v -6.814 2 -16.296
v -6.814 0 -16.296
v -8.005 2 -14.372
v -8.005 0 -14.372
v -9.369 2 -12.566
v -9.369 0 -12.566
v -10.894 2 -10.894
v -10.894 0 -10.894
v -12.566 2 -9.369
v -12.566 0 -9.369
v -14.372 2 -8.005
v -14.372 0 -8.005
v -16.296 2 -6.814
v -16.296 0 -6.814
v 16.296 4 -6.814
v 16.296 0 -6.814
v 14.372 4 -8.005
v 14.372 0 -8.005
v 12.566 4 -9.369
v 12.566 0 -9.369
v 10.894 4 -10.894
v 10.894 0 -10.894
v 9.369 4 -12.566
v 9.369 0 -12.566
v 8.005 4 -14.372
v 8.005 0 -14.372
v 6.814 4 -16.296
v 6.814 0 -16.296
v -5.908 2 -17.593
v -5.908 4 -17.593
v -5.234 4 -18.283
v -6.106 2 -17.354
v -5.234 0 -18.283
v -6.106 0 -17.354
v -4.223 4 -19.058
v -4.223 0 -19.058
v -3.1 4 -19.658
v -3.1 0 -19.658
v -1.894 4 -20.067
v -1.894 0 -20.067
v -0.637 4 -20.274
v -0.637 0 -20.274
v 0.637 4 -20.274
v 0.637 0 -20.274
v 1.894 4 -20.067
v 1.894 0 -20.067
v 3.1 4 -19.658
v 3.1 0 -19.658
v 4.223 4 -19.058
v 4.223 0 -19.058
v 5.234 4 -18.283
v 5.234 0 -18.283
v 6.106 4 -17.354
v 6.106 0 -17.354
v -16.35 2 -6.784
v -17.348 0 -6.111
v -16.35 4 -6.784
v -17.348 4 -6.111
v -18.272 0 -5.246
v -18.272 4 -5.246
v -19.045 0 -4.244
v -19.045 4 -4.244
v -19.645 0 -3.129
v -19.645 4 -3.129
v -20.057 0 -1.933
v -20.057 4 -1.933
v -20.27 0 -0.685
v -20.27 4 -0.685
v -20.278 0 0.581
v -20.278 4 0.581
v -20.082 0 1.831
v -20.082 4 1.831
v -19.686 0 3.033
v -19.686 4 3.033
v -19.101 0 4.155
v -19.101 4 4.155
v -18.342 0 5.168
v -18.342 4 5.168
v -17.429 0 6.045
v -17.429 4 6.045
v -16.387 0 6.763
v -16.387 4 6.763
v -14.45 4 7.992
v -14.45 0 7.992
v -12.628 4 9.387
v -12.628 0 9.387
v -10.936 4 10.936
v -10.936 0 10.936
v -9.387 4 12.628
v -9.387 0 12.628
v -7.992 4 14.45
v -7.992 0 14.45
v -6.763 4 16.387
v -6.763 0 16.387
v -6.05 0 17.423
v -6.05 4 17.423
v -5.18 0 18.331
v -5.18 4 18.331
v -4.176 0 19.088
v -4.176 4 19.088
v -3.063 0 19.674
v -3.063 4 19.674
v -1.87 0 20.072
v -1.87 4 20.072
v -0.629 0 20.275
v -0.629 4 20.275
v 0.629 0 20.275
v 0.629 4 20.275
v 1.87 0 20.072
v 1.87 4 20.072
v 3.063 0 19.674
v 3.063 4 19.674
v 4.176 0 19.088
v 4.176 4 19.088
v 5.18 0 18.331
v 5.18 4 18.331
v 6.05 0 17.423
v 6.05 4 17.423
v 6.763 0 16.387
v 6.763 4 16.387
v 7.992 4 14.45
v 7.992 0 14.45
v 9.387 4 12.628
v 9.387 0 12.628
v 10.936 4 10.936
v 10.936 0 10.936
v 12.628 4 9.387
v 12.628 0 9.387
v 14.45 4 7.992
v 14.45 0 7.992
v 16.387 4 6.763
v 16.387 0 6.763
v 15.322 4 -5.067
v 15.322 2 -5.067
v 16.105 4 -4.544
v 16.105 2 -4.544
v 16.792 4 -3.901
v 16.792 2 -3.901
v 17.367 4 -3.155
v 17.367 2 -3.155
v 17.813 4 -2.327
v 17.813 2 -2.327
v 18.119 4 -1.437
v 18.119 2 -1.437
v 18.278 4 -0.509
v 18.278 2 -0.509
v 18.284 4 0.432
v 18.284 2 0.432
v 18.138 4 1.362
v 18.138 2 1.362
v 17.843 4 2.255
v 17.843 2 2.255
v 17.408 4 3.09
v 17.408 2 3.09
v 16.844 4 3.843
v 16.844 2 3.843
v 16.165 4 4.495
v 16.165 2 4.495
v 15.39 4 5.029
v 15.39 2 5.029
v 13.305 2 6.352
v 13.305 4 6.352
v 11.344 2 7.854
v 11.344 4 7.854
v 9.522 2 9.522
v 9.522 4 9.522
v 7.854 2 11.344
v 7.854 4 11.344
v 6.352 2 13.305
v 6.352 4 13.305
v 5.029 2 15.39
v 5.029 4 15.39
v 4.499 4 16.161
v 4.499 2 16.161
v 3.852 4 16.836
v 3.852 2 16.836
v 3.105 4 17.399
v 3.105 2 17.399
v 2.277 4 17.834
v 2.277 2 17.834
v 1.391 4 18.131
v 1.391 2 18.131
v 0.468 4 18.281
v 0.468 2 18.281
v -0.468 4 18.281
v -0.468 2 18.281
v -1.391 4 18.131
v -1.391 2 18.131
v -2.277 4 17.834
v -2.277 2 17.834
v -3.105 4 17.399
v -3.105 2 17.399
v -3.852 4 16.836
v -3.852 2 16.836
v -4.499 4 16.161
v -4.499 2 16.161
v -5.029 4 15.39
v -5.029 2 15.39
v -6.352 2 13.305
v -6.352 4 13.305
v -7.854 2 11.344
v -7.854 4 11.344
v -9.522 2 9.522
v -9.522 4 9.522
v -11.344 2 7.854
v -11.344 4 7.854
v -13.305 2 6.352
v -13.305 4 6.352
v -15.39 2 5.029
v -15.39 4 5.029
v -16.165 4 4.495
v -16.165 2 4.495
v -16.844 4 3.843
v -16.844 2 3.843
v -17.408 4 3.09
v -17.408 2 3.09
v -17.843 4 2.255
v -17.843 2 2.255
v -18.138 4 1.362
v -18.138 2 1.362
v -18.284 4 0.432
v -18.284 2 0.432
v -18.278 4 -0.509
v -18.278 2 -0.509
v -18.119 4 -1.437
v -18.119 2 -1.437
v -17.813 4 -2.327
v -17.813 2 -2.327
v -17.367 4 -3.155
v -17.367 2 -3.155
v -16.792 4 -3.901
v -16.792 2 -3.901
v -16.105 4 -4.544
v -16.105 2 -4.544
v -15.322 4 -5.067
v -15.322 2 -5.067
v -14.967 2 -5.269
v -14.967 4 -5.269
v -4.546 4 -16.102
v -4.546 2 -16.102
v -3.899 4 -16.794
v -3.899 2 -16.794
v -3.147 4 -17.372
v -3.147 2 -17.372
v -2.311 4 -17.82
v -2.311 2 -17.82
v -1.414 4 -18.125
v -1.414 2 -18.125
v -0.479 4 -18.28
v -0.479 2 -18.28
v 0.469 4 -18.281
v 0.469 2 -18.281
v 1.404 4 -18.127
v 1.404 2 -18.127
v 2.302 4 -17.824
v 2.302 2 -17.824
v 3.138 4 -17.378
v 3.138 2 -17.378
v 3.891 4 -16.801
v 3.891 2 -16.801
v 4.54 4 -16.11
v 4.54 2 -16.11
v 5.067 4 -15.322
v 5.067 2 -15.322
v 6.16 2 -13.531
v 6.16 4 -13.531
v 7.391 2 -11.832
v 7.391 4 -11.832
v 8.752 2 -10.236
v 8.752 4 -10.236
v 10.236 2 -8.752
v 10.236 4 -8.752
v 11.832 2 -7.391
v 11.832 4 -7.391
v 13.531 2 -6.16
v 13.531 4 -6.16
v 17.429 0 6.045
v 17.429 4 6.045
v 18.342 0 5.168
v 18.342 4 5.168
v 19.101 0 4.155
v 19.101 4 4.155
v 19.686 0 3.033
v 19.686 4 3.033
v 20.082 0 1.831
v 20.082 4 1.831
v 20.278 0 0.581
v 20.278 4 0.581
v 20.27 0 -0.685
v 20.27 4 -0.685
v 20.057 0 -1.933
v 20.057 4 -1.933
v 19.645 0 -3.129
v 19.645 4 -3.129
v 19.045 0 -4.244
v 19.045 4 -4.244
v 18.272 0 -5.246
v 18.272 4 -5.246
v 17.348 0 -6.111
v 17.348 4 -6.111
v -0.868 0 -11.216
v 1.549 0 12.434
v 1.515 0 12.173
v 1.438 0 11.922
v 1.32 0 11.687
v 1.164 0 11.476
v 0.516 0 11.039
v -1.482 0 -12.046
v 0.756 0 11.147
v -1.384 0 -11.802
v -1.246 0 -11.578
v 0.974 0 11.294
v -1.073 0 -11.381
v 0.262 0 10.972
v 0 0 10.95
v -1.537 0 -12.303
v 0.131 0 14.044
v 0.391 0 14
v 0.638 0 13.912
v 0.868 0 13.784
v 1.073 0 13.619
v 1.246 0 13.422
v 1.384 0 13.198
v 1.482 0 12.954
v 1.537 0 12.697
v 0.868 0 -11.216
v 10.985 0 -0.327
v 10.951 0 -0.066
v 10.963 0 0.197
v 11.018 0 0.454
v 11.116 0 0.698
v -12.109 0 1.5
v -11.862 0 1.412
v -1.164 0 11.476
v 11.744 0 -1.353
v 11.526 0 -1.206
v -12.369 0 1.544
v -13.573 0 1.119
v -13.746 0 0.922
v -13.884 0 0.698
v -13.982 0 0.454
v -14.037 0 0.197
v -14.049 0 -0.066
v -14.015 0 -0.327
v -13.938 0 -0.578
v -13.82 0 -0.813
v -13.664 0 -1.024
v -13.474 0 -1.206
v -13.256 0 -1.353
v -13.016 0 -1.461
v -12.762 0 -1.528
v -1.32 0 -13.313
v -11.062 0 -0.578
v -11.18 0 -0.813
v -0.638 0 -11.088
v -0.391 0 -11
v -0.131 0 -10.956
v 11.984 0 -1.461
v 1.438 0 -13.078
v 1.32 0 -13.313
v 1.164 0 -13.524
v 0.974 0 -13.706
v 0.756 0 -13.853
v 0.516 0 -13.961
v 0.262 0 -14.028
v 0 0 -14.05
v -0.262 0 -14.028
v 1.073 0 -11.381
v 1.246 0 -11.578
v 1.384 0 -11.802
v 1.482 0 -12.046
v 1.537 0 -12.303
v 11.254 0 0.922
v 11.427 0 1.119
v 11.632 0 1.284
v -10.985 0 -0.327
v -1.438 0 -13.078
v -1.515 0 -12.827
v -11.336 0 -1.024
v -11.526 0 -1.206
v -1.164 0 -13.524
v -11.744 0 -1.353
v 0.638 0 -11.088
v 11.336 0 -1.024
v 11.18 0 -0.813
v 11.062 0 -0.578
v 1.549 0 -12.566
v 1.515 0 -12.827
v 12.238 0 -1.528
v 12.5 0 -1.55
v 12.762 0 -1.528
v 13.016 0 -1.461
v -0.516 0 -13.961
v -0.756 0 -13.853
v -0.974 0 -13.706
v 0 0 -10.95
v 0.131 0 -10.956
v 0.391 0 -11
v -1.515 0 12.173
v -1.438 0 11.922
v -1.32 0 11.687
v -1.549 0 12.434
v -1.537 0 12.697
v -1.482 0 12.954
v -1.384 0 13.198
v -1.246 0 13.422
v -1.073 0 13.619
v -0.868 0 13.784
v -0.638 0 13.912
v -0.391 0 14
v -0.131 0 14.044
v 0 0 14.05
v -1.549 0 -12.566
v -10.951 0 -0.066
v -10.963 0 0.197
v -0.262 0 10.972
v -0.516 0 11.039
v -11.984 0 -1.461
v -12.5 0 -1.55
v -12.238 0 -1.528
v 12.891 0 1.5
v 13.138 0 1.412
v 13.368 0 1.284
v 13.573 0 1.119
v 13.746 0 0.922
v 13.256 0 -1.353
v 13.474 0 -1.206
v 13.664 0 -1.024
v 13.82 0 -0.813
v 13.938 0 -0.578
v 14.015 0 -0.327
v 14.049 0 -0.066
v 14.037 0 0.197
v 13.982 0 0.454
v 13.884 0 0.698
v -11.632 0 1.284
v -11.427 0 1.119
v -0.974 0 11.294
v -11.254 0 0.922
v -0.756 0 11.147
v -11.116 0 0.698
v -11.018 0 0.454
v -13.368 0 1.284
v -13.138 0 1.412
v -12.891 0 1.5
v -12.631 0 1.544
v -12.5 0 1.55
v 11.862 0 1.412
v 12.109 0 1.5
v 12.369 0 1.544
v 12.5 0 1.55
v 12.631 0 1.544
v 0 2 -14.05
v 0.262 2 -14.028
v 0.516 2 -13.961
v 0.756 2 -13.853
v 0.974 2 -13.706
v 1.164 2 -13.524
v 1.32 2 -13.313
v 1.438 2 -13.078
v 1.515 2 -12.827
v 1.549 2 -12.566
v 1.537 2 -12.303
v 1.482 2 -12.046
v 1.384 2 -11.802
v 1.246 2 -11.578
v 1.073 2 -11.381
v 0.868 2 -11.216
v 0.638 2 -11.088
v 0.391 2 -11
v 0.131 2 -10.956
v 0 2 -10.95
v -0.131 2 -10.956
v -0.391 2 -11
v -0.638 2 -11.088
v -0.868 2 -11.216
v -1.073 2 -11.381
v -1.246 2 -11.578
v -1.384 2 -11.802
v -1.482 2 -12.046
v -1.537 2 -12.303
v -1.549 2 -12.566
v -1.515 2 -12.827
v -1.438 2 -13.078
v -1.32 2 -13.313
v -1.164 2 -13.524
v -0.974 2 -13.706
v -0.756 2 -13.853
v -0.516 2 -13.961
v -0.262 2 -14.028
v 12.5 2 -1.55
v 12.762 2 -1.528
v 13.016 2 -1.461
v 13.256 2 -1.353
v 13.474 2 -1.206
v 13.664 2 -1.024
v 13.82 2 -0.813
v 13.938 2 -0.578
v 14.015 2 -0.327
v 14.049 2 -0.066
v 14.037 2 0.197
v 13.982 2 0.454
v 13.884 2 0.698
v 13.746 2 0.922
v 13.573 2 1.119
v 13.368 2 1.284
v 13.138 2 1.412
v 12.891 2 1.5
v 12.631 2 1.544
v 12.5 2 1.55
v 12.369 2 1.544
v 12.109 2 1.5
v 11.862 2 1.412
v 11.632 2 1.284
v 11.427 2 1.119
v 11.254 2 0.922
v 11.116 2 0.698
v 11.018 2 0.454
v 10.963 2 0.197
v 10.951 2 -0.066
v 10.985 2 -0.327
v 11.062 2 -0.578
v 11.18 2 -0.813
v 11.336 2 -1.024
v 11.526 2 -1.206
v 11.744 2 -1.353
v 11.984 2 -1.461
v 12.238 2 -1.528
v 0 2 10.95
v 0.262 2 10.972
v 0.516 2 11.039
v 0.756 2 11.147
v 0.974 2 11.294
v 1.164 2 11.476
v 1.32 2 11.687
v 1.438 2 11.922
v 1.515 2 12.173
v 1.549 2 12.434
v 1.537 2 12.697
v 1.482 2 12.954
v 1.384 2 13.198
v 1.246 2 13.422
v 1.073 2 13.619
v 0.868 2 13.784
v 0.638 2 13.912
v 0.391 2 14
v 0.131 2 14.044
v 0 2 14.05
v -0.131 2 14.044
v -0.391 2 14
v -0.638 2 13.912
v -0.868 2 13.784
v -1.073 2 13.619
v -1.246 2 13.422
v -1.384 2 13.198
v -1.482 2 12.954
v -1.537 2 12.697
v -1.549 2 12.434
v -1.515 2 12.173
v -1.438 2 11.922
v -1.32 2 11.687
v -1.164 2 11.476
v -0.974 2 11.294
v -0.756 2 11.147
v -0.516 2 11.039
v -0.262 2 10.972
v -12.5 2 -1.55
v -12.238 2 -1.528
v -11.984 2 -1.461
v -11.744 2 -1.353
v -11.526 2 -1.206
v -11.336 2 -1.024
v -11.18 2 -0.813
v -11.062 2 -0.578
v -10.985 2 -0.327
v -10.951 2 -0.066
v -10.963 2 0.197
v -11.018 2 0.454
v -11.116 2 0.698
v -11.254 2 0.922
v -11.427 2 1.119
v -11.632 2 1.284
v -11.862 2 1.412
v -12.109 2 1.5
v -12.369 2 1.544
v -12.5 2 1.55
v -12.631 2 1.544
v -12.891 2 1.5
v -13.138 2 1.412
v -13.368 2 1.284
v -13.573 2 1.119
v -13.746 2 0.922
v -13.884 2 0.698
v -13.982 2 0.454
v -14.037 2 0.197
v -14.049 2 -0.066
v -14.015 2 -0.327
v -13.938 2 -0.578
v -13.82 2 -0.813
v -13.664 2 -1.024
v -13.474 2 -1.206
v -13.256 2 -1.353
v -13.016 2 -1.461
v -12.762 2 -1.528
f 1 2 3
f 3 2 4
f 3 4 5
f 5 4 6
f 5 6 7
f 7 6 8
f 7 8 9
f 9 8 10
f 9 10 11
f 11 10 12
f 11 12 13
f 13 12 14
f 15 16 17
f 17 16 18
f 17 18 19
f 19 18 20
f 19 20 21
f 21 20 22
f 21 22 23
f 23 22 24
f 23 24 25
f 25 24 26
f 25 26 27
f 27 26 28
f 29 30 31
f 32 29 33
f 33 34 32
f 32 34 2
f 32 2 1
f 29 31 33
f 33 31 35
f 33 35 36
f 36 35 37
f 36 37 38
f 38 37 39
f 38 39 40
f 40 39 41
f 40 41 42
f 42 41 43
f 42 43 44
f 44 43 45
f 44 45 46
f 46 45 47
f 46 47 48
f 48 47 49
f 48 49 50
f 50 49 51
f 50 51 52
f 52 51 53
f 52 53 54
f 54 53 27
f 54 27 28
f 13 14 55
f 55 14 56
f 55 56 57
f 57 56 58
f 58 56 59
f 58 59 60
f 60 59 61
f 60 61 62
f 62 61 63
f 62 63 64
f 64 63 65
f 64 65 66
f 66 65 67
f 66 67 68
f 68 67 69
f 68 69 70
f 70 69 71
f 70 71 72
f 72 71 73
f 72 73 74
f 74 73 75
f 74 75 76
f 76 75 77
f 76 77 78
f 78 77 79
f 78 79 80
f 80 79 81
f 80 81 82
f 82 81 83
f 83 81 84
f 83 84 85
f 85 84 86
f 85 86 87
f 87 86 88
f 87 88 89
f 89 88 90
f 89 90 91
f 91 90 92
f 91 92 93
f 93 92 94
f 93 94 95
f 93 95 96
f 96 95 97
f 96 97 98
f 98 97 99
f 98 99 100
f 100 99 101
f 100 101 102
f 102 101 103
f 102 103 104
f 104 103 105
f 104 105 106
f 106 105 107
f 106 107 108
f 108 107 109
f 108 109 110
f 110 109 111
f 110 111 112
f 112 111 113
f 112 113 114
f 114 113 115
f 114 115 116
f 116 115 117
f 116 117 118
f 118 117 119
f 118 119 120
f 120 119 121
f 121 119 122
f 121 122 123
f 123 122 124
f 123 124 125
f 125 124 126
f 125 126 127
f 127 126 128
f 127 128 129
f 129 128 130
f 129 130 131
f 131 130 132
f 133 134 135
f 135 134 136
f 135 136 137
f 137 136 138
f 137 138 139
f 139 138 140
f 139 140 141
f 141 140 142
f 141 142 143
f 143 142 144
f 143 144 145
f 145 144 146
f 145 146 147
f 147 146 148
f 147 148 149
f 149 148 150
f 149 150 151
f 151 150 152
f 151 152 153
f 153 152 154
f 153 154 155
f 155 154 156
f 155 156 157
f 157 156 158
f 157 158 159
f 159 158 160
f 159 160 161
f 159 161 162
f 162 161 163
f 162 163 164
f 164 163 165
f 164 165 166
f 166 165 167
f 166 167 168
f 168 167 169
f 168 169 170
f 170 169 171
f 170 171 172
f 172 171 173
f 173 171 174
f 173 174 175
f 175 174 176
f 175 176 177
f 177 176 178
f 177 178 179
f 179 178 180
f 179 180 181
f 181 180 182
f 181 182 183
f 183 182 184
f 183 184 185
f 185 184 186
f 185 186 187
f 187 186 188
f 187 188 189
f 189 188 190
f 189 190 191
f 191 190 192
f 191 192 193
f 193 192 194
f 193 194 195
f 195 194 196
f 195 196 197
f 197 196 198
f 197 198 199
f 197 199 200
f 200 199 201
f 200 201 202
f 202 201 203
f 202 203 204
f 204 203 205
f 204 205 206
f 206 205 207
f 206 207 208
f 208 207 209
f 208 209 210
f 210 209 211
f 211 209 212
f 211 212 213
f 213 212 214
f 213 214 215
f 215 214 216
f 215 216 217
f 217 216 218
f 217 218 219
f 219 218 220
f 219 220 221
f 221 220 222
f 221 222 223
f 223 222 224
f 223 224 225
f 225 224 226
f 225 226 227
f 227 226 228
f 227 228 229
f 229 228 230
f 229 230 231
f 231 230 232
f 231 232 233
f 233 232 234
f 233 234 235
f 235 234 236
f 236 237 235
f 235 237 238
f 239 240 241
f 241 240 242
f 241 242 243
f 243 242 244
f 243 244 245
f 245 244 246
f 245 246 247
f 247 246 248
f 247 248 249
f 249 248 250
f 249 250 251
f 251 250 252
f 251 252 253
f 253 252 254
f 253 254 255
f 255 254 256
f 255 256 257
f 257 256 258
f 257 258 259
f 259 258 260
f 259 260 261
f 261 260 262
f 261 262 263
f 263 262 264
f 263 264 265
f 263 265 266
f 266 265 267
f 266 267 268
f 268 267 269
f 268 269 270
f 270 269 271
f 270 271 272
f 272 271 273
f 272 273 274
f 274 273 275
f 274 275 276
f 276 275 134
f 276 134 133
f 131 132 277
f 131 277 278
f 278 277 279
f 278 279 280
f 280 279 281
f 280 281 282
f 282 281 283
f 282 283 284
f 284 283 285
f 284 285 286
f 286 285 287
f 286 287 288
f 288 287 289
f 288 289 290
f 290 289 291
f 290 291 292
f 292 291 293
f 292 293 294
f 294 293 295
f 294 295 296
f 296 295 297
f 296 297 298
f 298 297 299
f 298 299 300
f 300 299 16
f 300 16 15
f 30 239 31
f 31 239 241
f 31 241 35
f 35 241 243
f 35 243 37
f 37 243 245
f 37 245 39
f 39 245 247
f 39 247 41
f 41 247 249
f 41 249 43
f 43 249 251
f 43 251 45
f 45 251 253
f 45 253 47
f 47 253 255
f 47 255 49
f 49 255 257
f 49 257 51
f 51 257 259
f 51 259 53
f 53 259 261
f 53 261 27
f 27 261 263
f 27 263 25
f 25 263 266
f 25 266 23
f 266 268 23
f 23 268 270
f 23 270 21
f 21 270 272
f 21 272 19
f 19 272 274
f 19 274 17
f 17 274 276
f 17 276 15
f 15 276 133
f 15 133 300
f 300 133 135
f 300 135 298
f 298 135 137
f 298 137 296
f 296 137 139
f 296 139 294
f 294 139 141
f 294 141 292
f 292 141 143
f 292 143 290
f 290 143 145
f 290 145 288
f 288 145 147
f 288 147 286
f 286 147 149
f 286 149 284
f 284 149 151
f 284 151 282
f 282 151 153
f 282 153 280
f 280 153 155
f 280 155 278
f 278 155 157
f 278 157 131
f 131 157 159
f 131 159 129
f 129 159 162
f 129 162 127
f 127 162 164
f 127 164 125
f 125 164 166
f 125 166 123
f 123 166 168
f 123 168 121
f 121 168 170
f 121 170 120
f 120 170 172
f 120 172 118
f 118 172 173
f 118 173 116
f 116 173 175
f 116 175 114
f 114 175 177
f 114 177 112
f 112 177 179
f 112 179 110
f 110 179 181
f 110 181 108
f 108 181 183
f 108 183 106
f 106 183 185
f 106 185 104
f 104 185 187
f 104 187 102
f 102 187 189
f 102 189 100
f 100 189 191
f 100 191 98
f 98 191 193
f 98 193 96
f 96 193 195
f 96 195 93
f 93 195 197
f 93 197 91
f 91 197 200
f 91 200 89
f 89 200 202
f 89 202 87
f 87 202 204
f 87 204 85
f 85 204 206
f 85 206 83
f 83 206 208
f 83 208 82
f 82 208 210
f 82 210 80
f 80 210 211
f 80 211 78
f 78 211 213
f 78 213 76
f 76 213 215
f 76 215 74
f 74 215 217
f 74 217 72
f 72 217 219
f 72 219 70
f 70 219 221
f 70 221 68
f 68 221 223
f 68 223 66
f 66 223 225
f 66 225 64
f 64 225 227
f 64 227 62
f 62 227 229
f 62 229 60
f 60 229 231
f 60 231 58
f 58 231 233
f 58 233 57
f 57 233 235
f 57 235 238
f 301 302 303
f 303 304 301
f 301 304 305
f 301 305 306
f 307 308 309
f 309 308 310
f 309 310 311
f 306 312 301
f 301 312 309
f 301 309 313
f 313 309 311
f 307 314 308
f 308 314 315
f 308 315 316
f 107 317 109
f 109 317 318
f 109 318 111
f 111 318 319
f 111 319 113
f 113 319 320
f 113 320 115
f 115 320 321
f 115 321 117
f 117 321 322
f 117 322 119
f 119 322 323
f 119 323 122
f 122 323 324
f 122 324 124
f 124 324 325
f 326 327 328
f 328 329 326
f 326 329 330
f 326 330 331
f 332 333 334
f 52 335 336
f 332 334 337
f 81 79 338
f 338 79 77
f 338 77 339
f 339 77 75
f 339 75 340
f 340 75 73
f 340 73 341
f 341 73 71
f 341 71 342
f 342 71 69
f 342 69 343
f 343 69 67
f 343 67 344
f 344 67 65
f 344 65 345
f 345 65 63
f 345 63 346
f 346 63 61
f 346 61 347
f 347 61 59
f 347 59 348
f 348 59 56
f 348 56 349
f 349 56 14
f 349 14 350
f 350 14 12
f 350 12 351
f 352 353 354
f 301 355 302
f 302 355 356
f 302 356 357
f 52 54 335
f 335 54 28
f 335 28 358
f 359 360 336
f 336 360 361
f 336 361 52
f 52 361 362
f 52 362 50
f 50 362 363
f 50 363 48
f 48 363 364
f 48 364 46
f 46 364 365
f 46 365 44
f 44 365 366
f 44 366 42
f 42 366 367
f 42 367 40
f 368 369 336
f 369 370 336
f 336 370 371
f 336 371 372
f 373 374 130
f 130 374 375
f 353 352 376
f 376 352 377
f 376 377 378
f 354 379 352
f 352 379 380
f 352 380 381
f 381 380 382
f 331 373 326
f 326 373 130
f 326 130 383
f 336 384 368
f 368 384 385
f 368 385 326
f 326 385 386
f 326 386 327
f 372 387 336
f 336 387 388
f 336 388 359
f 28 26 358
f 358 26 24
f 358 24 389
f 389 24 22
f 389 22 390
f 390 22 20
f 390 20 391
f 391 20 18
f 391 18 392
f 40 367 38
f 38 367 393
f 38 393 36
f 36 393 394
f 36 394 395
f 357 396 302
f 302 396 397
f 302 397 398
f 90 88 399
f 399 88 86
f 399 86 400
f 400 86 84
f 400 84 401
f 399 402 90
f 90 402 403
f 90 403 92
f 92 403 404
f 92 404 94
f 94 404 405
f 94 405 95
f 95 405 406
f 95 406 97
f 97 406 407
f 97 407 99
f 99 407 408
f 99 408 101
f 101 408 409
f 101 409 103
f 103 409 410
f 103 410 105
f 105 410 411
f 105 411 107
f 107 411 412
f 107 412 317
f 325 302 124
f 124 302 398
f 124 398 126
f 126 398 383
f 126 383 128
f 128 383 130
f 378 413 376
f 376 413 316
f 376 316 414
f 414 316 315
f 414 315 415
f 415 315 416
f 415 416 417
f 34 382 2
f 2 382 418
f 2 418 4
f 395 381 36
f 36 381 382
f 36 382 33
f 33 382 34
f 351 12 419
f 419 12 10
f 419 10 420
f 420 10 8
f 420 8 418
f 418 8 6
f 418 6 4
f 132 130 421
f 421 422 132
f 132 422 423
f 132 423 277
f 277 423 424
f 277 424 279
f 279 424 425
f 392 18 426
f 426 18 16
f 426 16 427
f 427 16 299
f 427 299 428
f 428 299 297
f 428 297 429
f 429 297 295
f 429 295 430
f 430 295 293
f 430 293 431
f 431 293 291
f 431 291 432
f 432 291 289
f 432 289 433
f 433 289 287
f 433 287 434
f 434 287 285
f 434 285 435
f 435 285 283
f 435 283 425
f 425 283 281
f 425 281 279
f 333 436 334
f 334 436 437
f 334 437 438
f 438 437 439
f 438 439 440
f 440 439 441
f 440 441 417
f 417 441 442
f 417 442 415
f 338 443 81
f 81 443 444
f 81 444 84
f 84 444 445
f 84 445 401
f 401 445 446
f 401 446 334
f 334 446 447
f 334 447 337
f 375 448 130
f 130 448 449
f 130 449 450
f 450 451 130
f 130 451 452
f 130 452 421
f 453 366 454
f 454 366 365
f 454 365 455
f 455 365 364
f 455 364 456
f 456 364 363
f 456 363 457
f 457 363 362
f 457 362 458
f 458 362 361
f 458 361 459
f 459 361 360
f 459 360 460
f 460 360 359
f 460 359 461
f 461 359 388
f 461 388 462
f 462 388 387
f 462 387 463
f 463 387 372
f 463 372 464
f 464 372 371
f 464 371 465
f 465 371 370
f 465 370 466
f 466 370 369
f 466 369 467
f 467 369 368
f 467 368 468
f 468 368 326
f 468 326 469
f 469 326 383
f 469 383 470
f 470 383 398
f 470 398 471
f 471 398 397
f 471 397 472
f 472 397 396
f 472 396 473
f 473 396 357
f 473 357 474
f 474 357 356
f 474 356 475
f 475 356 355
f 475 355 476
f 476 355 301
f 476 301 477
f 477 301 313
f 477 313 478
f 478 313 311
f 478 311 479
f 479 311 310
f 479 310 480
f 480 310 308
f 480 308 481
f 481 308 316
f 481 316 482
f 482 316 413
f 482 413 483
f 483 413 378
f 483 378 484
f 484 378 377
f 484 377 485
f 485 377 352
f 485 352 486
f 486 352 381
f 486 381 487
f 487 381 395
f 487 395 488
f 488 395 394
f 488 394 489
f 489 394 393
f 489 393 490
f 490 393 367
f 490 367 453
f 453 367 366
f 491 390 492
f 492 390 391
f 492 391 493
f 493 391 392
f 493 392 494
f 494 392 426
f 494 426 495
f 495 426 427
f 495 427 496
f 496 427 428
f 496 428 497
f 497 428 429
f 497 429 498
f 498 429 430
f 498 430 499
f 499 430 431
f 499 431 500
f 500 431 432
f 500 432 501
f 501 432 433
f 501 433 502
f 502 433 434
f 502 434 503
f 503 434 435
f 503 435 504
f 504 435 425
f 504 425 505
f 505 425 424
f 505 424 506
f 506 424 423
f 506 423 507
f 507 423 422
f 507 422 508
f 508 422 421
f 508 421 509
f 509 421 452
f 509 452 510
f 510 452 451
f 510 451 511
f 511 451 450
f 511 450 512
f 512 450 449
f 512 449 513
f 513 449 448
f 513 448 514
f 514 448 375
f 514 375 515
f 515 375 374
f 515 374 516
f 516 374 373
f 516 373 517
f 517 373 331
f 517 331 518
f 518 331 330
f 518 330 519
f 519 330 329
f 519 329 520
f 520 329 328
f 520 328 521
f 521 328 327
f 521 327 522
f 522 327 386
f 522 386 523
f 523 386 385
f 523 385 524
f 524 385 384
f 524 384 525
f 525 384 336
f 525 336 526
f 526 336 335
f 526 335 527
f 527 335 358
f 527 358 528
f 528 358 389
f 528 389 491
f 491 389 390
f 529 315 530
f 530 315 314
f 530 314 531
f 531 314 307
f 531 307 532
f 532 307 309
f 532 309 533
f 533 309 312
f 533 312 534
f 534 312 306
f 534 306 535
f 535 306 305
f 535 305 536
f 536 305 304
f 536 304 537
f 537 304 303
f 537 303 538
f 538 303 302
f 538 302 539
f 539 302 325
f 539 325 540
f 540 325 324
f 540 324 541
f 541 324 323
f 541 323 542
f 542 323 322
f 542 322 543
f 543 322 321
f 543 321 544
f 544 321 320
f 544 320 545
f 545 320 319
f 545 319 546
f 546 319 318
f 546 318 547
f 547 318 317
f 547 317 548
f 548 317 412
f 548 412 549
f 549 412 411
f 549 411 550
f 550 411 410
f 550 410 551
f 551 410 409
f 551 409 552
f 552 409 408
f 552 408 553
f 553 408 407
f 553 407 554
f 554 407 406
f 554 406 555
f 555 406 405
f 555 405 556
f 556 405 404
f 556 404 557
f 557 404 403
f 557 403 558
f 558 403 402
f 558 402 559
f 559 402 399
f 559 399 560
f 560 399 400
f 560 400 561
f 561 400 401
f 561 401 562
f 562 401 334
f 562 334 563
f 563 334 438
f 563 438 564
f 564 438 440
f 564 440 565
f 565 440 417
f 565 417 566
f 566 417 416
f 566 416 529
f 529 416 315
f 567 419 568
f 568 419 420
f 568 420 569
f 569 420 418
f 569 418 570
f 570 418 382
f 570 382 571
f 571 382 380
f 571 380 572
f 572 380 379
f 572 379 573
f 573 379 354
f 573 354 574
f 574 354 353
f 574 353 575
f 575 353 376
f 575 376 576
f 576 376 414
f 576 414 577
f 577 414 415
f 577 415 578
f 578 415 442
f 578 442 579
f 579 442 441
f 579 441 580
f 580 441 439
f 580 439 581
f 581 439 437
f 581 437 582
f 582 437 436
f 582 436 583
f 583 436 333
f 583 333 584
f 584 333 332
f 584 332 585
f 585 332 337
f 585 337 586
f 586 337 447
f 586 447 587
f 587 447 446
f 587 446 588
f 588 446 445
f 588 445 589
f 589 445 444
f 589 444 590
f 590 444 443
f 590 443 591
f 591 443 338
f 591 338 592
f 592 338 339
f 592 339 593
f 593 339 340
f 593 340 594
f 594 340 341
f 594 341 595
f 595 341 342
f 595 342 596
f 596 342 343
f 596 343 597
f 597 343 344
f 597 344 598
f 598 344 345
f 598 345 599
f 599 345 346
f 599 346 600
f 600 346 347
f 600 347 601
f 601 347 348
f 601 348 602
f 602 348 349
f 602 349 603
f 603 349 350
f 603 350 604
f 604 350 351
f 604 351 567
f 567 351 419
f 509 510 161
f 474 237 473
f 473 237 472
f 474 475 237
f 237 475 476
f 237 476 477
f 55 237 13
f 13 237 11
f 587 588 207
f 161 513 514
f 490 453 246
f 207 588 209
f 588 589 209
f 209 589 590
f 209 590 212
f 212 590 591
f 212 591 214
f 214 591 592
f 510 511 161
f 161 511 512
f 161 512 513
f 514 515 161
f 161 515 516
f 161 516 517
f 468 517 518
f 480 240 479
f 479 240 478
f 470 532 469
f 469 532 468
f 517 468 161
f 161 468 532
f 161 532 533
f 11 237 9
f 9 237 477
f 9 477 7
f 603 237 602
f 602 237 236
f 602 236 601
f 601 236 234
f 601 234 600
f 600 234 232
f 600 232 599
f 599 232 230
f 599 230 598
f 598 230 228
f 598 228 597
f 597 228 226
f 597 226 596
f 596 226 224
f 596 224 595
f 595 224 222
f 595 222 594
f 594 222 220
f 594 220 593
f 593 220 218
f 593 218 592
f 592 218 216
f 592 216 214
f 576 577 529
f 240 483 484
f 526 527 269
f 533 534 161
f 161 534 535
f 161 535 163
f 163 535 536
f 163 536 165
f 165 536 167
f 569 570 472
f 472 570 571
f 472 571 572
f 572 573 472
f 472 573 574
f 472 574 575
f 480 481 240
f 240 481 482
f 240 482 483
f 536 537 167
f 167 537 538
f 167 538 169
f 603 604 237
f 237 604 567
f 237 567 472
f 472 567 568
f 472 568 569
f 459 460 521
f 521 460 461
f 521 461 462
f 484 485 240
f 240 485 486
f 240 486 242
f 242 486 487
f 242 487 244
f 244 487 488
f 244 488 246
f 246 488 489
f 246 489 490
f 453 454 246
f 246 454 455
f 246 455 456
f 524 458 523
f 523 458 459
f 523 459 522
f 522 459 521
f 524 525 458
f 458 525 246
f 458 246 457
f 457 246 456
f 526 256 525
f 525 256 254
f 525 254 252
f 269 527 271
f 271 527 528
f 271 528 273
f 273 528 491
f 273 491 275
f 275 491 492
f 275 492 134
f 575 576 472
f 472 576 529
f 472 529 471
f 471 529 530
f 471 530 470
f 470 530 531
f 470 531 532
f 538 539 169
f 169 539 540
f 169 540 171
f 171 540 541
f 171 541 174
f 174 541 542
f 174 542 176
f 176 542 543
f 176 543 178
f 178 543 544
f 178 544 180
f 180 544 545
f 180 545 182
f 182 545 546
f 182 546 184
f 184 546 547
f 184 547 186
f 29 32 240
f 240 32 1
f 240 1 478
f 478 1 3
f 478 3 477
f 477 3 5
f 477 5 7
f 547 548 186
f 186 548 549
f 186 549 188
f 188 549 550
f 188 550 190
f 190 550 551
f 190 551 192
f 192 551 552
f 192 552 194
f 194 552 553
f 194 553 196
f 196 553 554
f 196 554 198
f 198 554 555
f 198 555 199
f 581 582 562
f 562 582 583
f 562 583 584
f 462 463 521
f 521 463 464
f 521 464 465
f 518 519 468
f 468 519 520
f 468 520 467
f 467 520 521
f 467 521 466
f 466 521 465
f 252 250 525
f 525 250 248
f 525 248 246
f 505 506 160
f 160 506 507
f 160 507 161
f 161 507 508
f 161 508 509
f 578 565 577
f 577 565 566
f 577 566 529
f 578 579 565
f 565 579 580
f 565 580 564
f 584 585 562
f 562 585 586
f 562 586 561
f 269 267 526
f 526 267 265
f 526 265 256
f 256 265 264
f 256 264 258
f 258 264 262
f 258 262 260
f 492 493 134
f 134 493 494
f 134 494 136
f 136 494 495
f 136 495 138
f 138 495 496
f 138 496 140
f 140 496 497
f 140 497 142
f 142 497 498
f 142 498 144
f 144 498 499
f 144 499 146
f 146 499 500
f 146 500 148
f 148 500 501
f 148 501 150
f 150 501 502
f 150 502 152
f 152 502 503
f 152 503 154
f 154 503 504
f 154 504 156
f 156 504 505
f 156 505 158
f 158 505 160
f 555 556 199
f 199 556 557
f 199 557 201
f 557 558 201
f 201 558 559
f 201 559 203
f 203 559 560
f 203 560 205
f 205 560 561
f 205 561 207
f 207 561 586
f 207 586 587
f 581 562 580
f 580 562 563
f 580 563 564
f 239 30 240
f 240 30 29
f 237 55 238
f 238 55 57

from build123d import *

# Parameters (mm, degrees)
EXTRUDE_1_DEPTH     = 4
SKETCH_1_3_R        = 1.55
EXTRUDE_2_DEPTH     = 2
CUT_EXTRUDE_1_DEPTH = 2


with BuildPart() as part:
    # 草图1 → 凸台-拉伸1 (new body)
    with BuildSketch(Plane(origin=(0, 0, 0), x_dir=(1, 0, 0), z_dir=(0, 1, 0))):
        with BuildLine():
            ThreePointArc((6.814196026, 16.295620175), (10.893644329, 10.893644329), (16.295620175, 6.814196026))
            ThreePointArc((16.295620175, 6.814196026), (20.299824853, 0.052271097), (16.386606825, -6.76271302))
            ThreePointArc((16.386606825, -6.76271302), (10.936304212, -10.936304212), (6.76271302, -16.386606825))
            ThreePointArc((6.76271302, -16.386606825), (0, -20.3), (-6.76271302, -16.386606825))
            ThreePointArc((-6.76271302, -16.386606825), (-10.936304212, -10.936304212), (-16.386606825, -6.76271302))
            ThreePointArc((-16.386606825, -6.76271302), (-20.299824853, 0.052271097), (-16.295620175, 6.814196026))
            ThreePointArc((-16.295620175, 6.814196026), (-10.893644329, 10.893644329), (-6.814196026, 16.295620175))
            ThreePointArc((-6.814196026, 16.295620175), (0, 20.3), (6.814196026, 16.295620175))
        make_face()
        with BuildLine():
            ThreePointArc((15.322384233, 5.066966276), (18.299869762, 0.038868252), (15.390040972, -5.02868404))
            ThreePointArc((15.390040972, -5.02868404), (9.52209065, -9.52209065), (5.02868404, -15.390040972))
            ThreePointArc((5.02868404, -15.390040972), (0, -18.3), (-5.02868404, -15.390040972))
            ThreePointArc((-5.02868404, -15.390040972), (-9.52209065, -9.52209065), (-15.390040972, -5.02868404))
            ThreePointArc((-15.390040972, -5.02868404), (-18.299869762, 0.038868252), (-15.322384233, 5.066966276))
            ThreePointArc((-15.322384233, 5.066966276), (-9.479430767, 9.479430767), (-5.066966276, 15.322384233))
            ThreePointArc((-5.066966276, 15.322384233), (0, 18.3), (5.066966276, 15.322384233))
            ThreePointArc((5.066966276, 15.322384233), (9.479430767, 9.479430767), (15.322384233, 5.066966276))
        make_face(mode=Mode.SUBTRACT)
    extrude(amount=EXTRUDE_1_DEPTH)

    # 草图1<3> → 凸台-拉伸2 (add)
    with BuildSketch(Plane(origin=(0, 0, 0), x_dir=(1, 0, 0), z_dir=(0, 1, 0))):
        with BuildLine():
            ThreePointArc((15.390040972, -5.02868404), (9.52209065, -9.52209065), (5.02868404, -15.390040972))
            ThreePointArc((5.02868404, -15.390040972), (0, -18.3), (-5.02868404, -15.390040972))
            ThreePointArc((-5.02868404, -15.390040972), (-9.52209065, -9.52209065), (-15.390040972, -5.02868404))
            ThreePointArc((-15.390040972, -5.02868404), (-18.299869762, 0.038868252), (-15.322384233, 5.066966276))
            ThreePointArc((-15.322384233, 5.066966276), (-9.479430767, 9.479430767), (-5.066966276, 15.322384233))
            ThreePointArc((-5.066966276, 15.322384233), (0, 18.3), (5.066966276, 15.322384233))
            ThreePointArc((5.066966276, 15.322384233), (9.479430767, 9.479430767), (15.322384233, 5.066966276))
            ThreePointArc((15.322384233, 5.066966276), (18.299869762, 0.038868252), (15.390040972, -5.02868404))
        make_face()
        with Locations(Location((0, -12.5, 0), (0, 0, 270))):
            Circle(SKETCH_1_3_R, mode=Mode.SUBTRACT)
        with Locations(Location((12.5, 0, 0), (0, 0, 270))):
            Circle(SKETCH_1_3_R, mode=Mode.SUBTRACT)
        with Locations(Location((0, 12.5, 0), (0, 0, 270))):
            Circle(SKETCH_1_3_R, mode=Mode.SUBTRACT)
        with Locations(Location((-12.5, 0, 0), (0, 0, 270))):
            Circle(SKETCH_1_3_R, mode=Mode.SUBTRACT)
    extrude(amount=EXTRUDE_2_DEPTH)

    # 草图2 → 切除-拉伸1 (cut)
    with BuildSketch(Plane(origin=(0, 4, 0), x_dir=(1, 0, 0), z_dir=(0, 1, 0))):
        Polygon((-17.675489757, 8.235718661), (-13.629873573, 3.804805697), (-2.552591164, 13.918846157), (-6.598207348, 18.349759121), align=None)
    extrude(amount=-CUT_EXTRUDE_1_DEPTH, mode=Mode.SUBTRACT)


solid = part.part
